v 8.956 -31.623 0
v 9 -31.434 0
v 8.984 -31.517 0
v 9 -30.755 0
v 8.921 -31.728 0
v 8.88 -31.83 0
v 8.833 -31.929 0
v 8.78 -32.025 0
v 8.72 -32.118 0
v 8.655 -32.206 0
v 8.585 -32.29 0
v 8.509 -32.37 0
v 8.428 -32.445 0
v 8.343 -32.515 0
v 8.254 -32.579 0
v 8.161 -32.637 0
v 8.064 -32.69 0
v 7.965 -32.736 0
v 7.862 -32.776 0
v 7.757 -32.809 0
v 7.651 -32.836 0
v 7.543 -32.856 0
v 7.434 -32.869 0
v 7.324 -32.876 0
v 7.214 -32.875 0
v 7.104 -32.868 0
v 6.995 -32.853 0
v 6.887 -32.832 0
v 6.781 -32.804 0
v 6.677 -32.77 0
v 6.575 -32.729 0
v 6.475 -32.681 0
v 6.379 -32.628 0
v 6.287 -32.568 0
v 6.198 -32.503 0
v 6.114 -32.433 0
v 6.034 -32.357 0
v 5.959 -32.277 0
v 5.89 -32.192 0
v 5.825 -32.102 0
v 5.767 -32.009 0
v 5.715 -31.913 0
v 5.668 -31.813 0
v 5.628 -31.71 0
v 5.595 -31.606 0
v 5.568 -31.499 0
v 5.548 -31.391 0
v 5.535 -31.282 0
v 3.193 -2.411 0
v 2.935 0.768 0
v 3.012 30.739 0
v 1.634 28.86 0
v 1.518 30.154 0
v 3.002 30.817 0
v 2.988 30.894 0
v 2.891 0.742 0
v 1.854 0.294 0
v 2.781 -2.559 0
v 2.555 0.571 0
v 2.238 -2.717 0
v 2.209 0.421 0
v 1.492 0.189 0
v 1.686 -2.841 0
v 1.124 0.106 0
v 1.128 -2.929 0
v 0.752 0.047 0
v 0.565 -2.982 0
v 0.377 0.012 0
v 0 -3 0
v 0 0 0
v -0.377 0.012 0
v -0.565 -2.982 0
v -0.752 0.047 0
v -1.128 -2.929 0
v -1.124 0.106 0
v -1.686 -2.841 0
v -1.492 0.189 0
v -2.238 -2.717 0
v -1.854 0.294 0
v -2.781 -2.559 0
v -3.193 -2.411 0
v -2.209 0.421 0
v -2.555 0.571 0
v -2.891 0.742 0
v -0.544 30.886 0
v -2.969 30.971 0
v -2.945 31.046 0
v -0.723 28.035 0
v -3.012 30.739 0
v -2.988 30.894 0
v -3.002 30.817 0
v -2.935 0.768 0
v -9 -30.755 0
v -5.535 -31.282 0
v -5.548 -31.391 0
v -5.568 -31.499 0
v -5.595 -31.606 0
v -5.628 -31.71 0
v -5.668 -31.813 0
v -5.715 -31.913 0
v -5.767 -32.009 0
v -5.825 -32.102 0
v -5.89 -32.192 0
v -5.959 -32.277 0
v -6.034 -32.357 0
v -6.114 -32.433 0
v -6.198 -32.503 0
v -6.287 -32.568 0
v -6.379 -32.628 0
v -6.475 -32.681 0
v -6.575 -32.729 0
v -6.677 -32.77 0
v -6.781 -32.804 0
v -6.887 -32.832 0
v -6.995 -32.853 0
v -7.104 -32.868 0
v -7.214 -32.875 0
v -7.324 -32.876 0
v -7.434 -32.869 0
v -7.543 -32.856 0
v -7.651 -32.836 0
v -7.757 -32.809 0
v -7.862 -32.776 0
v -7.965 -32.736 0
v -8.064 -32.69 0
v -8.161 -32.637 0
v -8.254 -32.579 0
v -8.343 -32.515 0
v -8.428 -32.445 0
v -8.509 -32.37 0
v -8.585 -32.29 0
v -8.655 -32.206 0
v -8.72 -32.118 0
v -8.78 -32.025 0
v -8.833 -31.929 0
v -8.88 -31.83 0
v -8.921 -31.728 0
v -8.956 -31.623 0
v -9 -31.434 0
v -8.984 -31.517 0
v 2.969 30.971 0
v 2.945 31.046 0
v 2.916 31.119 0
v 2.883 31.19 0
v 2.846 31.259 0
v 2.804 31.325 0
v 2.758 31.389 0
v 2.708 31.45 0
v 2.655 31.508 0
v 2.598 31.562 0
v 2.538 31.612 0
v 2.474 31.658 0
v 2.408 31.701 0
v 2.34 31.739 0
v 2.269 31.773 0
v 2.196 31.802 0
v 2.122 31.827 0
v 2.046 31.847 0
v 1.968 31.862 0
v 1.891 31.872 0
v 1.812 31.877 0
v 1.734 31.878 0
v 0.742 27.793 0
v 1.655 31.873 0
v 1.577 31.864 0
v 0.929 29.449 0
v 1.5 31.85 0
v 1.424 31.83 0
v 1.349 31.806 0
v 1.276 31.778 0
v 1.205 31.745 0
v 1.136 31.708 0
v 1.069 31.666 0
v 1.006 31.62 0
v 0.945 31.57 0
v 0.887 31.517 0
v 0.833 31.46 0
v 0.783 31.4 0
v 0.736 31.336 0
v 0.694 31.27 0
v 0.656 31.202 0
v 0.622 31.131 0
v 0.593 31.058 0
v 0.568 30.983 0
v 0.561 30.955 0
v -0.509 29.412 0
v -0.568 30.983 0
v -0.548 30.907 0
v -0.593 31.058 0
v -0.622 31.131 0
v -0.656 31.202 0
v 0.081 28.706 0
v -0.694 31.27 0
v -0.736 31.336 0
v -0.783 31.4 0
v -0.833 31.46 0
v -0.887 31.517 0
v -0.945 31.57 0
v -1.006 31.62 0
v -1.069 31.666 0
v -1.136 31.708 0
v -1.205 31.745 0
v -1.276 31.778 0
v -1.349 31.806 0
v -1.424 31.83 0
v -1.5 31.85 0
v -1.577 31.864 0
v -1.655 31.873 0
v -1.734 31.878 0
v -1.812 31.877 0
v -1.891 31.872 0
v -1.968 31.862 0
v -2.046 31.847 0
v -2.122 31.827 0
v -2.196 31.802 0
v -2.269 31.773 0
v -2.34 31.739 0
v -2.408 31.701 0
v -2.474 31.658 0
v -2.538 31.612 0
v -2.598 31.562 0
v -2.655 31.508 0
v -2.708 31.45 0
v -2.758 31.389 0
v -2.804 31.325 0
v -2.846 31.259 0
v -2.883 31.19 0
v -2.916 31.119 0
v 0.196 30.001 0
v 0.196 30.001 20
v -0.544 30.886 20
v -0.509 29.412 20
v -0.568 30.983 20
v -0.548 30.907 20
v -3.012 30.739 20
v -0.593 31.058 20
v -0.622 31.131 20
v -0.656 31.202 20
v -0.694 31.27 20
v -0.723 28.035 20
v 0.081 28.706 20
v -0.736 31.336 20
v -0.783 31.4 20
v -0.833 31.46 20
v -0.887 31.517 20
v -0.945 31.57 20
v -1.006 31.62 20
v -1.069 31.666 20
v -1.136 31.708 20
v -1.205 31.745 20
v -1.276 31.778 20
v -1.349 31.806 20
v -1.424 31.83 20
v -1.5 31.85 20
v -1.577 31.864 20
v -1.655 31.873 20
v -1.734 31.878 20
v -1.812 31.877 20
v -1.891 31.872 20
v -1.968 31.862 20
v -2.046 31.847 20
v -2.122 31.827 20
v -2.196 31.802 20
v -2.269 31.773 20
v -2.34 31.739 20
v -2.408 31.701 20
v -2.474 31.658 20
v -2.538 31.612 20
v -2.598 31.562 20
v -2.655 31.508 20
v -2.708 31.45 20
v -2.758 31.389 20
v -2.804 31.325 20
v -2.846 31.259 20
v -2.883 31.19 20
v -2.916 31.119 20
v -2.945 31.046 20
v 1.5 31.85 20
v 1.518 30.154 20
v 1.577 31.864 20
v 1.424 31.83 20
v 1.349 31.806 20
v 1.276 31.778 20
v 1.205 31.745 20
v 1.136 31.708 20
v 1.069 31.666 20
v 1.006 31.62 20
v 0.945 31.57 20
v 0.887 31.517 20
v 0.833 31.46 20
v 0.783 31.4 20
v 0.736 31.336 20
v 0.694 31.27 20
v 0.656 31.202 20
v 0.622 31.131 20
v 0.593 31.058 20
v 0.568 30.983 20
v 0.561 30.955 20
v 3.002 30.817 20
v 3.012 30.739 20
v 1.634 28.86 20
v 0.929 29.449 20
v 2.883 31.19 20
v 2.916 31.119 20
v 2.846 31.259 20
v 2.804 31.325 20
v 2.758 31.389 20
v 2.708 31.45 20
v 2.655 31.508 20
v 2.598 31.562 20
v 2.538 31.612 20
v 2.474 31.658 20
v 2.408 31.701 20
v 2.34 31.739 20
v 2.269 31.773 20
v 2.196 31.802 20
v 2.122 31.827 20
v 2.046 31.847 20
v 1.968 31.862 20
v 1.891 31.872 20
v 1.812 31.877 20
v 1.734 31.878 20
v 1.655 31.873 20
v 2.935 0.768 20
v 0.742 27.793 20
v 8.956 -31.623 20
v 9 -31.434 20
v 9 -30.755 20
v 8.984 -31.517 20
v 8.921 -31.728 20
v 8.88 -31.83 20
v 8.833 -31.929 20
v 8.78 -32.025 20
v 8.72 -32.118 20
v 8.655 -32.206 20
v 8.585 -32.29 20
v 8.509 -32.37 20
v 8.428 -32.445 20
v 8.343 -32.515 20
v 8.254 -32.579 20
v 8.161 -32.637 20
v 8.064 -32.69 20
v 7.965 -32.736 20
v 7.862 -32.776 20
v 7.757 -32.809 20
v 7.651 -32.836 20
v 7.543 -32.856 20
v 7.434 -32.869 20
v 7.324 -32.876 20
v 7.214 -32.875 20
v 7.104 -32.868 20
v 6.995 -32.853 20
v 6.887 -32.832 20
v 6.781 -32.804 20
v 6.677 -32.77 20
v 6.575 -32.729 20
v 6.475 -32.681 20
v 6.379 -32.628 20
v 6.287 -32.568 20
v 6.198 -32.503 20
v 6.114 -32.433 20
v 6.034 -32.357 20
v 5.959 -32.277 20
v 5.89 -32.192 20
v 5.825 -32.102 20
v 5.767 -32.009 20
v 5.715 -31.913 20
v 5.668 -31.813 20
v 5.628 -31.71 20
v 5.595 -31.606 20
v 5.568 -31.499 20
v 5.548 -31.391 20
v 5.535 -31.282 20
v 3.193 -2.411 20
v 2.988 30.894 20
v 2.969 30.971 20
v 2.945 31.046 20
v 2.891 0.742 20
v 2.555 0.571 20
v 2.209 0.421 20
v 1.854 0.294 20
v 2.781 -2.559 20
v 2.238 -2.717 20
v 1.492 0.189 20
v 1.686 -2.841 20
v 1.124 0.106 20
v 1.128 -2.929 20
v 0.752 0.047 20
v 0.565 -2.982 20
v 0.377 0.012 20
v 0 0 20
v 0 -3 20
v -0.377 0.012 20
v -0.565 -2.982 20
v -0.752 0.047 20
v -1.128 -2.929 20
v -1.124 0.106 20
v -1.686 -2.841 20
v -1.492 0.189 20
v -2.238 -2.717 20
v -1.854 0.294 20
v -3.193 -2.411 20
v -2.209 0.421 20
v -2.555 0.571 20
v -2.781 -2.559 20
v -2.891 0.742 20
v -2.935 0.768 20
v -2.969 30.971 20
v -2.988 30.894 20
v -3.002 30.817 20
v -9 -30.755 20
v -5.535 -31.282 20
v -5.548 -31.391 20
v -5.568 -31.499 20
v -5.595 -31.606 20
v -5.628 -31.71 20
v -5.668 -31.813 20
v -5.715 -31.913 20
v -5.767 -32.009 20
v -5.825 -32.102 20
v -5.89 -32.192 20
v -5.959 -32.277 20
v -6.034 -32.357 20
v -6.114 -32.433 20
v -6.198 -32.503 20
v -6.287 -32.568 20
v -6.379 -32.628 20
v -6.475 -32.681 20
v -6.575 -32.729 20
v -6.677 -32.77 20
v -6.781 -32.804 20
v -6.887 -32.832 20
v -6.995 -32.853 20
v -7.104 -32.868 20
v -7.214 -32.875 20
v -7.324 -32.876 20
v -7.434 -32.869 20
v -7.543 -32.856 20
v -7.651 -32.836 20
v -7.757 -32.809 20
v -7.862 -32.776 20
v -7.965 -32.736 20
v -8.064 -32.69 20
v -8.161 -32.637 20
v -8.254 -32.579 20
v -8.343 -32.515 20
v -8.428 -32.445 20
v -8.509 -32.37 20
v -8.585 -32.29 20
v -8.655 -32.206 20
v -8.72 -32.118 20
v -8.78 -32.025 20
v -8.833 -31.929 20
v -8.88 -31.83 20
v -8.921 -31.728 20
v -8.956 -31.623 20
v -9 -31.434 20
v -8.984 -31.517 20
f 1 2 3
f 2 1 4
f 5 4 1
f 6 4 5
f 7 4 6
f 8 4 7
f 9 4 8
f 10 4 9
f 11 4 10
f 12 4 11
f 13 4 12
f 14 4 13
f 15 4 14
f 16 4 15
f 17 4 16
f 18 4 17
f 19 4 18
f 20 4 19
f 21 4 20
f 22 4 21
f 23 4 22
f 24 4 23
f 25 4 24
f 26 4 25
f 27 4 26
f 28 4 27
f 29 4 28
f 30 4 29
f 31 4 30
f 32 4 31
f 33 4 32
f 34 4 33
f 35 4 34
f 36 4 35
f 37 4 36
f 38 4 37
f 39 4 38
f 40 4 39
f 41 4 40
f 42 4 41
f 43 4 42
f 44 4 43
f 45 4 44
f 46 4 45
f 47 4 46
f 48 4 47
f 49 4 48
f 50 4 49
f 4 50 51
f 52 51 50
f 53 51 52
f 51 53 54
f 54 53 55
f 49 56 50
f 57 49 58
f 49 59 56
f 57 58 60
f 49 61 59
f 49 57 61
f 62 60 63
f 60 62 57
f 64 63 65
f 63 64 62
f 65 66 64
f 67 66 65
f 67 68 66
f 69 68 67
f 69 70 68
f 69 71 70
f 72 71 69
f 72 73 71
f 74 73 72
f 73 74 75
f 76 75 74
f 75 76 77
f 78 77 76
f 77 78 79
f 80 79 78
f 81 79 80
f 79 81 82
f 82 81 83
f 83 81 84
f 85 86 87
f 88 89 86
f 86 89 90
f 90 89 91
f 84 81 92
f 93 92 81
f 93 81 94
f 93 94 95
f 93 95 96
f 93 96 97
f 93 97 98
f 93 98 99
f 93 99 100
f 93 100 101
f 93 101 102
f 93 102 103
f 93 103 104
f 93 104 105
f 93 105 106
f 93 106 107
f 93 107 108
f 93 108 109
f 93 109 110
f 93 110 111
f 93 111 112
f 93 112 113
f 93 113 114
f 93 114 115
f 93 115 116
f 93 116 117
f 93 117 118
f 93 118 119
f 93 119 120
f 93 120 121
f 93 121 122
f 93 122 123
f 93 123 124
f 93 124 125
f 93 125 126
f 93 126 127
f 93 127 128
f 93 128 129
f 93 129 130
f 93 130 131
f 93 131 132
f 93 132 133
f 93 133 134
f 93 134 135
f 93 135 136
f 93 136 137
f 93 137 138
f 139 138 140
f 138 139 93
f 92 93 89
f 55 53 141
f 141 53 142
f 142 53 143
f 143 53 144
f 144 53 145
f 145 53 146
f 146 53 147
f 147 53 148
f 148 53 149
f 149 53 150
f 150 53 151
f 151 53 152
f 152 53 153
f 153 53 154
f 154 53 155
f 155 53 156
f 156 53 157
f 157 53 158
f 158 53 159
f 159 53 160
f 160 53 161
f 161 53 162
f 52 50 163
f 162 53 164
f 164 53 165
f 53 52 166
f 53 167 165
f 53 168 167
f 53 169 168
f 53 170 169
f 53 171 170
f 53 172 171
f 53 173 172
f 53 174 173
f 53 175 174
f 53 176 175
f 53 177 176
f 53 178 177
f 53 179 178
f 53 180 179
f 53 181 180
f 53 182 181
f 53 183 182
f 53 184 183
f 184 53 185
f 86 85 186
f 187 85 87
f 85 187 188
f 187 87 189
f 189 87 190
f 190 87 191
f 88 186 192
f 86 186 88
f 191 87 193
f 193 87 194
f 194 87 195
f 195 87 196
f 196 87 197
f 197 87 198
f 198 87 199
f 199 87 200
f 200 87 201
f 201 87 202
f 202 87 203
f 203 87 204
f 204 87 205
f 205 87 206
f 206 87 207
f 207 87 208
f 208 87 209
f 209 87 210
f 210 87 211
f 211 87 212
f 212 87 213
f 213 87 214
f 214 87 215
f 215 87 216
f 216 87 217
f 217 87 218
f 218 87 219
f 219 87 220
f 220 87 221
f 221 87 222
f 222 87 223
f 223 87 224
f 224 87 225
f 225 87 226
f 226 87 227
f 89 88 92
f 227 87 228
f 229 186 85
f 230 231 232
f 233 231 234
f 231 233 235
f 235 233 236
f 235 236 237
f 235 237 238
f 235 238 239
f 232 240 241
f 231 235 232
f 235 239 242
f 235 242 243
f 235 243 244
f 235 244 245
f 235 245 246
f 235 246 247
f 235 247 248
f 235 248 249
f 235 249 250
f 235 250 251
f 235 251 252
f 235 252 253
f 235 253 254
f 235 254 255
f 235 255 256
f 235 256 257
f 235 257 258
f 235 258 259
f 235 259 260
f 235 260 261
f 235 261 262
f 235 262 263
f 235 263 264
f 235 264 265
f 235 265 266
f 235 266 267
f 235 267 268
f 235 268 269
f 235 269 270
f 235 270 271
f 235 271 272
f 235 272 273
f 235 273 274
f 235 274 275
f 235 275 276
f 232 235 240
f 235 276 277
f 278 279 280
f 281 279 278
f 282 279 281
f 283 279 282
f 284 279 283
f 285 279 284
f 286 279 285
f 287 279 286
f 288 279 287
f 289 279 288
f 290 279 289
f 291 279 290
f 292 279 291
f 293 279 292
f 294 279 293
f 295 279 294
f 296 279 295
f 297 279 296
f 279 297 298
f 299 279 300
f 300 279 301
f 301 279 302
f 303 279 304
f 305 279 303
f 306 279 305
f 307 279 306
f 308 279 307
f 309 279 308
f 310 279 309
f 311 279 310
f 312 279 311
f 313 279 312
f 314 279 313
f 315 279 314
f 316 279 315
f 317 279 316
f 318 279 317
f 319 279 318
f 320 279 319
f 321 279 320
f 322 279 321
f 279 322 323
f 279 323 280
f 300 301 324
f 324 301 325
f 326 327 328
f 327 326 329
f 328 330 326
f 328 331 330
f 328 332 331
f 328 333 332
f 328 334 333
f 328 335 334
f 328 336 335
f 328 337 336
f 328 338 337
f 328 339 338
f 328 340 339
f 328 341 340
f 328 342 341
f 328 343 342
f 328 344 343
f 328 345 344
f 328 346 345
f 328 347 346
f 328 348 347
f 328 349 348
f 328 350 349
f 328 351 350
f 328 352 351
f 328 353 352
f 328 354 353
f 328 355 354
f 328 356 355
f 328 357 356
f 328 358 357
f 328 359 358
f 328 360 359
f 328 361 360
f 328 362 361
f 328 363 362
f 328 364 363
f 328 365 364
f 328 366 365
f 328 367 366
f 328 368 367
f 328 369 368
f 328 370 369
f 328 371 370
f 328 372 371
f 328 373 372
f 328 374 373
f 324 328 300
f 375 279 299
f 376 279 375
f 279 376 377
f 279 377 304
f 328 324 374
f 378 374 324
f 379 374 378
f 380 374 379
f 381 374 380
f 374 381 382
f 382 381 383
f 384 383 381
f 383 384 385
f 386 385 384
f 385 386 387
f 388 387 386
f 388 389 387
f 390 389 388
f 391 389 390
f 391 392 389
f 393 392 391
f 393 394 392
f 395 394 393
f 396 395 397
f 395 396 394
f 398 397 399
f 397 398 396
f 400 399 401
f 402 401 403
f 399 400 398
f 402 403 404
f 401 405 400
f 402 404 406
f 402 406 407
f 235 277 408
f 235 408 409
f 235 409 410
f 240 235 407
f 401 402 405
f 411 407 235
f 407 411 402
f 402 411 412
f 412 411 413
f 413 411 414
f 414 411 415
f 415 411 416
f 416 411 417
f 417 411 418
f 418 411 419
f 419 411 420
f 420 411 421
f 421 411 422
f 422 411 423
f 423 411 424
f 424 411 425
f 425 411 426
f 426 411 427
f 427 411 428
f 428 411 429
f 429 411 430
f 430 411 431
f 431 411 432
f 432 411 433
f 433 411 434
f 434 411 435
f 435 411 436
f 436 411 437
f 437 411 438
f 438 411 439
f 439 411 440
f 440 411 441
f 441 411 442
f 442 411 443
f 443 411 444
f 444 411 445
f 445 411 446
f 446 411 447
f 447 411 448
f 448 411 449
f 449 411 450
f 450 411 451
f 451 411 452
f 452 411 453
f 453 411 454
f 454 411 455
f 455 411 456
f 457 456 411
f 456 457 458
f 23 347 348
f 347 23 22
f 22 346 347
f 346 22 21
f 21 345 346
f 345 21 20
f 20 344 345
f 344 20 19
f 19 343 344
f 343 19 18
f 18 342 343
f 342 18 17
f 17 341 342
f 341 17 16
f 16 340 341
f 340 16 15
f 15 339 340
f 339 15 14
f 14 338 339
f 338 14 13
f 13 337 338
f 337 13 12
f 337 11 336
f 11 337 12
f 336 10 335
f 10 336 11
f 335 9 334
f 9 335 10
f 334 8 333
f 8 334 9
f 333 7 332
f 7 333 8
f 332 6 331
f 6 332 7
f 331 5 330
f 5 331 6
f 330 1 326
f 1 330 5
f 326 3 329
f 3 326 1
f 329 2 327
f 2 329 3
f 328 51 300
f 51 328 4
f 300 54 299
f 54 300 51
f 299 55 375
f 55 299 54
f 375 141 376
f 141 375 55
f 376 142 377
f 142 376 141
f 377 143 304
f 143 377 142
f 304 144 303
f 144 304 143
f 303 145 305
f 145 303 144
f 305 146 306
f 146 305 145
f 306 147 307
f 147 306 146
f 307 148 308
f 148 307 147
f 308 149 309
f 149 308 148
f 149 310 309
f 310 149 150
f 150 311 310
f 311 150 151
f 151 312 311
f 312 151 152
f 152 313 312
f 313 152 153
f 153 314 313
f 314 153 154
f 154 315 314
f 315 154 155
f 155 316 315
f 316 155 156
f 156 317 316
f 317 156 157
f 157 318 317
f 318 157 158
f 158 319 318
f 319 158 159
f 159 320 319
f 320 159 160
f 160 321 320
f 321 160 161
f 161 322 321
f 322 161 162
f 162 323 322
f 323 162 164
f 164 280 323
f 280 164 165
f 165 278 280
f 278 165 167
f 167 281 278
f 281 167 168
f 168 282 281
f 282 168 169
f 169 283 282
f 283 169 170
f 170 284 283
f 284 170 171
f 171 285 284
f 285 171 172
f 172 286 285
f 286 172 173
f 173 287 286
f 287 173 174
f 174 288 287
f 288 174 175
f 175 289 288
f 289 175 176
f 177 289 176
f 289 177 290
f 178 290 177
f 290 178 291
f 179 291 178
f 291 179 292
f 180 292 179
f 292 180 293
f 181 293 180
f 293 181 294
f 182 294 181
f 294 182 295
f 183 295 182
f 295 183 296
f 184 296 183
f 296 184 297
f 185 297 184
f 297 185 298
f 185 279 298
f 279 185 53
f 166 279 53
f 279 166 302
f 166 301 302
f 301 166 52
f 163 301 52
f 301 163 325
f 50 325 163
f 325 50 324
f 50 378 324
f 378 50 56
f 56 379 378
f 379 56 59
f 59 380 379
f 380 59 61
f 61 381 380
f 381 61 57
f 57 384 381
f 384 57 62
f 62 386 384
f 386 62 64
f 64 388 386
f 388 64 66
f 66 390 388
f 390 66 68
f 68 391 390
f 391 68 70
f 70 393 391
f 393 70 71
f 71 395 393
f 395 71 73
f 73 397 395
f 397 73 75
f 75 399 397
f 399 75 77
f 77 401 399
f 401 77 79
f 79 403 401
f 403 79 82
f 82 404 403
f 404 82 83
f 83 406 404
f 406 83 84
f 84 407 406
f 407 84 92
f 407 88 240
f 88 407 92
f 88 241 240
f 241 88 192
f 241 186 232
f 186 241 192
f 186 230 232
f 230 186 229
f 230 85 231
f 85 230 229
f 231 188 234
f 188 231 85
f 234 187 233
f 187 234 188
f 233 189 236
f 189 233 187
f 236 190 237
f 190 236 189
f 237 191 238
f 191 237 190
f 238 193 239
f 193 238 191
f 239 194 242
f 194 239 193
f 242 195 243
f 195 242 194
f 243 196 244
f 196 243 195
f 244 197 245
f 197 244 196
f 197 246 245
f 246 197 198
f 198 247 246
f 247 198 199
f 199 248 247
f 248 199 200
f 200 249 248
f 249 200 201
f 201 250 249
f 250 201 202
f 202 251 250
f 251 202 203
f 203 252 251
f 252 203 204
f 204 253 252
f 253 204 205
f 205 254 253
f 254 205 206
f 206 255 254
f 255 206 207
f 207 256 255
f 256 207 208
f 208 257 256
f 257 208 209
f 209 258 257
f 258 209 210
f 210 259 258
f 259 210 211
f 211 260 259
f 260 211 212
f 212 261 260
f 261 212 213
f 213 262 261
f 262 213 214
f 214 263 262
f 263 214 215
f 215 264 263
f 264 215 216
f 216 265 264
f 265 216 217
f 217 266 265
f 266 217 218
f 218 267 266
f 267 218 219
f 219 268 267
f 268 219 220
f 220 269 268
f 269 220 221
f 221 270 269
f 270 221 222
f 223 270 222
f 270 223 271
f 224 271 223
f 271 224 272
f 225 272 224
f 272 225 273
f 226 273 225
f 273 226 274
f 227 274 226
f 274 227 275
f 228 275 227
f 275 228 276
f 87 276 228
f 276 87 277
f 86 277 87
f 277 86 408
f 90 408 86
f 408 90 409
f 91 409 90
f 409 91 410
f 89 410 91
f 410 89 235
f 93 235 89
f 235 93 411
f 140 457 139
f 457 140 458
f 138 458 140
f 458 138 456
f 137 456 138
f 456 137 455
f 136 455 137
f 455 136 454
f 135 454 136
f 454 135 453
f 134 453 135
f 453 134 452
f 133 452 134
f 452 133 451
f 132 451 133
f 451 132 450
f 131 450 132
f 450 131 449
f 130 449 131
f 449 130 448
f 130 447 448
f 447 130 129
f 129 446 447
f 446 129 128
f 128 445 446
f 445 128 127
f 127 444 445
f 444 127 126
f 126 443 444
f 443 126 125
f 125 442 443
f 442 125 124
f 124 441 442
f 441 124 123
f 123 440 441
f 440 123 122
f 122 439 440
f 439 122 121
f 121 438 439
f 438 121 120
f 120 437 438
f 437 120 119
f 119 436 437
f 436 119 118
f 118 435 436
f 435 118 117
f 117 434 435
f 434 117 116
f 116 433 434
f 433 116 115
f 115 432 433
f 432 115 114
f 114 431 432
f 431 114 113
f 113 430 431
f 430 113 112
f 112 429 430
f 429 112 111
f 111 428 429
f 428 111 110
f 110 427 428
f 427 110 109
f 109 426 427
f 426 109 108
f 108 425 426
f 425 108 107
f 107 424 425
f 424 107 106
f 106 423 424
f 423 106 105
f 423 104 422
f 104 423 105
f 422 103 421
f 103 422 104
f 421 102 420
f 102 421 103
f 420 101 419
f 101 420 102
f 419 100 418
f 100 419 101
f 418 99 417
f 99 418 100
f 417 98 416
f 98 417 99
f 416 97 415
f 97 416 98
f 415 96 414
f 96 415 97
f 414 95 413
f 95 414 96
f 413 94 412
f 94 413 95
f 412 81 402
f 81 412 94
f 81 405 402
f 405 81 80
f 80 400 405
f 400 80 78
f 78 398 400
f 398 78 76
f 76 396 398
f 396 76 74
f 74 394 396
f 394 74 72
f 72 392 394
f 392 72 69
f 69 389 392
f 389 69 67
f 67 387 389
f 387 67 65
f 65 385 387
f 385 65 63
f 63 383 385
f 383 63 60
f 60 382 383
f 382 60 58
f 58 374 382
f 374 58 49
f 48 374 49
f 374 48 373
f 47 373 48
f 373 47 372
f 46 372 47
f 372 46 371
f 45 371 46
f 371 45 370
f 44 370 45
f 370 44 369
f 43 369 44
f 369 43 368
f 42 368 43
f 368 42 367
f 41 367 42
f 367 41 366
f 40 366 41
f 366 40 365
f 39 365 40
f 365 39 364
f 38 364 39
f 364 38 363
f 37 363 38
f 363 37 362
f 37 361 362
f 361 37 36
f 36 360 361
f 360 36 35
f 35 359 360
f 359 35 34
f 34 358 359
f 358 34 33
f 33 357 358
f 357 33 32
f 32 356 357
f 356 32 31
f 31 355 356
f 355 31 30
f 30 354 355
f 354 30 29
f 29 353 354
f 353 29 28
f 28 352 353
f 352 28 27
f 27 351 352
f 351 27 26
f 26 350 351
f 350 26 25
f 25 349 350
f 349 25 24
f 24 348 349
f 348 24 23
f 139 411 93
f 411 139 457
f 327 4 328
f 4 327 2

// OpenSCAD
$fn=100;
//Variables
r1=1.25;
r2=1.75;
len1=32;
len2=33;
module stick_hull() {
	hull() {
		translate([0,len1-r1])circle(r=r1);
		translate([0,-len2+r2])circle(r=r2);
	}
}
module stick_cut() {
	for(i=[0:1.3:2]) {
		translate([r1+0.1,i])scale(v=[1,1])rotate(a=[0,0,45])square(1.5,center=true);
	}
}
module stick1(x) {
		stick_hull();
		translate([-0.4,x])stick_cut();
}
module stick2(x) {
	difference() {
		stick_hull();
		translate([0,x])stick_cut();
	}
}
module ring() {
	intersection(){
		difference() {
			circle(r=9);
			circle(r=6);
		}
		translate([-4,-11])square(8);
	}
}
module klammer(x=5.1,y=4.5) {
	translate([-y,0])rotate(a=[0,0,-x])stick1(29);
    mirror([1,0])translate([-y,0])rotate(a=[0,0,-x])stick2(29);
	translate([0,6])ring();
}
//Extrusion
intersection() {
    linear_extrude(height=20)klammer();
    cube([18,100,40],center=true);
}
